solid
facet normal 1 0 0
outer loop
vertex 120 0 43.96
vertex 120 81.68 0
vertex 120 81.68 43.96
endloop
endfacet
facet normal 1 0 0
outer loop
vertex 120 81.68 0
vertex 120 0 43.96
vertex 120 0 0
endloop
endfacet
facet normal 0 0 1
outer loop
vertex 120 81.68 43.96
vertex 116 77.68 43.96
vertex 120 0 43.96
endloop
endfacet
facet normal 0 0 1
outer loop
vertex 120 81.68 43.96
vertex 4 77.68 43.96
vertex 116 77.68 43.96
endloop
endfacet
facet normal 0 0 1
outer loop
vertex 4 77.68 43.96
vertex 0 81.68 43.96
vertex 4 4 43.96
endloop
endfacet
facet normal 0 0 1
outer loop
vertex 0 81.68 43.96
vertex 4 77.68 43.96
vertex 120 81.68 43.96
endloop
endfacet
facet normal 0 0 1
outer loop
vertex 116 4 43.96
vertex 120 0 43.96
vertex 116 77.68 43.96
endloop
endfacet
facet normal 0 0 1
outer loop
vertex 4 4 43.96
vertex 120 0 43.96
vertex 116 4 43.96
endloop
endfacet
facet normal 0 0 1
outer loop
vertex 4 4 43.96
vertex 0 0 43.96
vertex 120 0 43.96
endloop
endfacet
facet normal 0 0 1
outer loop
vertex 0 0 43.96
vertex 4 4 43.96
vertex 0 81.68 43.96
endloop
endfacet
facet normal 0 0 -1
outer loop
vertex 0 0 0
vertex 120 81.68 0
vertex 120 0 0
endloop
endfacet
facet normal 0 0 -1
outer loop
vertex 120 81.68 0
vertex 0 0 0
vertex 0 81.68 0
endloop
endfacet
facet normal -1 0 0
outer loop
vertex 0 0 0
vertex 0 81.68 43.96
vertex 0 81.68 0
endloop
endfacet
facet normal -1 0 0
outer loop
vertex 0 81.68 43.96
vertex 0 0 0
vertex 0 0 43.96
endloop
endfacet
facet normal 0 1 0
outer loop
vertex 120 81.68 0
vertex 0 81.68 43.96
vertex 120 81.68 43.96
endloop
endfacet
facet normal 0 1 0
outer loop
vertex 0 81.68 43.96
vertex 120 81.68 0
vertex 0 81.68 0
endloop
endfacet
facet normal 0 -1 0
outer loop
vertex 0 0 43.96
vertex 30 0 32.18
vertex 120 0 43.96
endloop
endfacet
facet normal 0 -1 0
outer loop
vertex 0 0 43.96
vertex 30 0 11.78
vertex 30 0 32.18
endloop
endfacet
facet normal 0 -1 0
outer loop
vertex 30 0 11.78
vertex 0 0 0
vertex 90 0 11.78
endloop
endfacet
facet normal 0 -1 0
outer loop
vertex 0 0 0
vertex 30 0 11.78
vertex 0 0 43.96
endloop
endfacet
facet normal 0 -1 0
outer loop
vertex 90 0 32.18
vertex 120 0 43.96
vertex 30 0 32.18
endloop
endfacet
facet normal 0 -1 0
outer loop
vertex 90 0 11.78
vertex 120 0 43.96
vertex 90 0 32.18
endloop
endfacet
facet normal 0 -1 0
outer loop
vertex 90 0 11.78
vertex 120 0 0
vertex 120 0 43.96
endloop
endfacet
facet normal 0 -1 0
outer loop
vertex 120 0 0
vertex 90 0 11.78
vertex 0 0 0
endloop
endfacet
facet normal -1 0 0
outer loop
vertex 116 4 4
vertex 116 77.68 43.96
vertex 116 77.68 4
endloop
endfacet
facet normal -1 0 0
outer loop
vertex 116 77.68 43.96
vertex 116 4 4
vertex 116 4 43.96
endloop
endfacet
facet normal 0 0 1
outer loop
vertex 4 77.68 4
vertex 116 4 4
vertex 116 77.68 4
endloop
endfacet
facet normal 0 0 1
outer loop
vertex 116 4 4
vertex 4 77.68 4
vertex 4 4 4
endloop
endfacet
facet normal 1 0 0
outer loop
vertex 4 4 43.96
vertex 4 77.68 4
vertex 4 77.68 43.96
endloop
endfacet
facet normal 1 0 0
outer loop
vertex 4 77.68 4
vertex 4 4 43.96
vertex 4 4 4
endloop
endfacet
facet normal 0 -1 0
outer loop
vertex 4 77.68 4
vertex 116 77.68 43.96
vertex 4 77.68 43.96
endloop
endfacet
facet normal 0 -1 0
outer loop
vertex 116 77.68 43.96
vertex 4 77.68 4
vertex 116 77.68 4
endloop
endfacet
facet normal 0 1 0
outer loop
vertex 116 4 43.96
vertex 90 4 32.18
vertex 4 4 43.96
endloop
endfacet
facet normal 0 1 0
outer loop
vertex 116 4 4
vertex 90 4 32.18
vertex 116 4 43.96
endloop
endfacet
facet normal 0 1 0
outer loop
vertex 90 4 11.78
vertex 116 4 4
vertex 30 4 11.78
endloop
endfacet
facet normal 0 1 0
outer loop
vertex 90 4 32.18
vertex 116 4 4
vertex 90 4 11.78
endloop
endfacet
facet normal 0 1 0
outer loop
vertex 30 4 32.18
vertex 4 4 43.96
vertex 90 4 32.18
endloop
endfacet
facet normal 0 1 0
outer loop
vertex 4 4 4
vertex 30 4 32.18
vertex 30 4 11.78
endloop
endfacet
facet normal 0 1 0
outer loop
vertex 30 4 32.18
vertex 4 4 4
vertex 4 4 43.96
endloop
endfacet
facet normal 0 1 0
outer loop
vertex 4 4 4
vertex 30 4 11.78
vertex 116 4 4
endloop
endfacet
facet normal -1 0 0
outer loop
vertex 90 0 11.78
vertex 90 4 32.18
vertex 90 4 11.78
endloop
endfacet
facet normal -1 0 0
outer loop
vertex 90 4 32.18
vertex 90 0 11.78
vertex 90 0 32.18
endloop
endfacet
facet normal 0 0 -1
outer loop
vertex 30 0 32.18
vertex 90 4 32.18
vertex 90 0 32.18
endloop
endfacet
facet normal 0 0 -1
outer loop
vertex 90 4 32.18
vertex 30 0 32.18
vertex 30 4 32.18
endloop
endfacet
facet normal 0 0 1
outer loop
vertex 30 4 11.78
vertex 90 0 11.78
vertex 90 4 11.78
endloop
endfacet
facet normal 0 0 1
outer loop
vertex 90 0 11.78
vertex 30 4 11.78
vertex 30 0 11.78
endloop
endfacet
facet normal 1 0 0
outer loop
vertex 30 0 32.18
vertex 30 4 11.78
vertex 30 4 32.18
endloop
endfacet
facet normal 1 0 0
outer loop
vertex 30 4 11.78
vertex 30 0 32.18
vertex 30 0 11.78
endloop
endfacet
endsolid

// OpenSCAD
/* doodle-meta {"version":1,"parameters":{"box_width":{"label":"Overall width","description":"Changes the box width along X","unit":"mm","feature":"body_width"},"box_depth":{"label":"Overall depth","description":"Changes the box depth along Y","unit":"mm","feature":"body_depth"},"box_height":{"label":"Overall height","description":"Changes the box height along Z","unit":"mm","feature":"body_height"},"wall_thickness":{"label":"Wall thickness","description":"Uniform thickness of walls and floor","unit":"mm","feature":"wall_thickness"},"window_width":{"label":"Window width","description":"Width of the rectangular window in the front wall","unit":"mm","feature":"front_window"},"window_height":{"label":"Window height","description":"Height of the rectangular window in the front wall","unit":"mm","feature":"front_window"},"window_center_z":{"label":"Window center height","description":"Vertical center of the window from the bottom","unit":"mm","feature":"front_window"}},"features":{"body_width":{"kind":"dimension","axis":"x","label":"Overall width"},"body_depth":{"kind":"dimension","axis":"y","label":"Overall depth"},"body_height":{"kind":"dimension","axis":"z","label":"Overall height"},"wall_thickness":{"kind":"region","label":"Wall thickness","min":[0,0,0],"max":[{"parameter":"wall_thickness","scale":1,"offset":0},{"parameter":"wall_thickness","scale":1,"offset":0},{"parameter":"wall_thickness","scale":1,"offset":0}]},"front_window":{"kind":"region","label":"Front window","min":[{"parameter":"box_width","scale":0.25,"offset":0},0,{"parameter":"window_center_z","scale":1,"offset":-10.2}],[{"parameter":"box_width","scale":0.75,"offset":0},{"parameter":"wall_thickness","scale":1,"offset":0},{"parameter":"window_center_z","scale":1,"offset":10.2}]}}} */

// Top-level editable parameters
box_width = 120.0;
box_depth = 81.68;
box_height = 43.96;
wall_thickness = 4.0;
window_width = 60.0;
window_height = 20.4;
window_center_z = 21.98;

// Derived (not editable)
eps = 0.01;
inner_width = box_width - 2 * wall_thickness;
inner_depth = box_depth - 2 * wall_thickness;
inner_height = box_height - wall_thickness;

module box_body() {
    // Outer solid
    cube([box_width, box_depth, box_height]);
}

module inner_cavity() {
    // Hollow interior (open top)
    translate([wall_thickness, wall_thickness, wall_thickness])
        cube([inner_width, inner_depth, inner_height]);
}

module window_cutter() {
    // Rectangular through-hole in the front wall (cut along Y)
    translate([box_width/2 - window_width/2, -eps, window_center_z - window_height/2])
        cube([window_width, wall_thickness + 2*eps, window_height]);
}

difference() {
    box_body();
    inner_cavity();
    window_cutter();
}
